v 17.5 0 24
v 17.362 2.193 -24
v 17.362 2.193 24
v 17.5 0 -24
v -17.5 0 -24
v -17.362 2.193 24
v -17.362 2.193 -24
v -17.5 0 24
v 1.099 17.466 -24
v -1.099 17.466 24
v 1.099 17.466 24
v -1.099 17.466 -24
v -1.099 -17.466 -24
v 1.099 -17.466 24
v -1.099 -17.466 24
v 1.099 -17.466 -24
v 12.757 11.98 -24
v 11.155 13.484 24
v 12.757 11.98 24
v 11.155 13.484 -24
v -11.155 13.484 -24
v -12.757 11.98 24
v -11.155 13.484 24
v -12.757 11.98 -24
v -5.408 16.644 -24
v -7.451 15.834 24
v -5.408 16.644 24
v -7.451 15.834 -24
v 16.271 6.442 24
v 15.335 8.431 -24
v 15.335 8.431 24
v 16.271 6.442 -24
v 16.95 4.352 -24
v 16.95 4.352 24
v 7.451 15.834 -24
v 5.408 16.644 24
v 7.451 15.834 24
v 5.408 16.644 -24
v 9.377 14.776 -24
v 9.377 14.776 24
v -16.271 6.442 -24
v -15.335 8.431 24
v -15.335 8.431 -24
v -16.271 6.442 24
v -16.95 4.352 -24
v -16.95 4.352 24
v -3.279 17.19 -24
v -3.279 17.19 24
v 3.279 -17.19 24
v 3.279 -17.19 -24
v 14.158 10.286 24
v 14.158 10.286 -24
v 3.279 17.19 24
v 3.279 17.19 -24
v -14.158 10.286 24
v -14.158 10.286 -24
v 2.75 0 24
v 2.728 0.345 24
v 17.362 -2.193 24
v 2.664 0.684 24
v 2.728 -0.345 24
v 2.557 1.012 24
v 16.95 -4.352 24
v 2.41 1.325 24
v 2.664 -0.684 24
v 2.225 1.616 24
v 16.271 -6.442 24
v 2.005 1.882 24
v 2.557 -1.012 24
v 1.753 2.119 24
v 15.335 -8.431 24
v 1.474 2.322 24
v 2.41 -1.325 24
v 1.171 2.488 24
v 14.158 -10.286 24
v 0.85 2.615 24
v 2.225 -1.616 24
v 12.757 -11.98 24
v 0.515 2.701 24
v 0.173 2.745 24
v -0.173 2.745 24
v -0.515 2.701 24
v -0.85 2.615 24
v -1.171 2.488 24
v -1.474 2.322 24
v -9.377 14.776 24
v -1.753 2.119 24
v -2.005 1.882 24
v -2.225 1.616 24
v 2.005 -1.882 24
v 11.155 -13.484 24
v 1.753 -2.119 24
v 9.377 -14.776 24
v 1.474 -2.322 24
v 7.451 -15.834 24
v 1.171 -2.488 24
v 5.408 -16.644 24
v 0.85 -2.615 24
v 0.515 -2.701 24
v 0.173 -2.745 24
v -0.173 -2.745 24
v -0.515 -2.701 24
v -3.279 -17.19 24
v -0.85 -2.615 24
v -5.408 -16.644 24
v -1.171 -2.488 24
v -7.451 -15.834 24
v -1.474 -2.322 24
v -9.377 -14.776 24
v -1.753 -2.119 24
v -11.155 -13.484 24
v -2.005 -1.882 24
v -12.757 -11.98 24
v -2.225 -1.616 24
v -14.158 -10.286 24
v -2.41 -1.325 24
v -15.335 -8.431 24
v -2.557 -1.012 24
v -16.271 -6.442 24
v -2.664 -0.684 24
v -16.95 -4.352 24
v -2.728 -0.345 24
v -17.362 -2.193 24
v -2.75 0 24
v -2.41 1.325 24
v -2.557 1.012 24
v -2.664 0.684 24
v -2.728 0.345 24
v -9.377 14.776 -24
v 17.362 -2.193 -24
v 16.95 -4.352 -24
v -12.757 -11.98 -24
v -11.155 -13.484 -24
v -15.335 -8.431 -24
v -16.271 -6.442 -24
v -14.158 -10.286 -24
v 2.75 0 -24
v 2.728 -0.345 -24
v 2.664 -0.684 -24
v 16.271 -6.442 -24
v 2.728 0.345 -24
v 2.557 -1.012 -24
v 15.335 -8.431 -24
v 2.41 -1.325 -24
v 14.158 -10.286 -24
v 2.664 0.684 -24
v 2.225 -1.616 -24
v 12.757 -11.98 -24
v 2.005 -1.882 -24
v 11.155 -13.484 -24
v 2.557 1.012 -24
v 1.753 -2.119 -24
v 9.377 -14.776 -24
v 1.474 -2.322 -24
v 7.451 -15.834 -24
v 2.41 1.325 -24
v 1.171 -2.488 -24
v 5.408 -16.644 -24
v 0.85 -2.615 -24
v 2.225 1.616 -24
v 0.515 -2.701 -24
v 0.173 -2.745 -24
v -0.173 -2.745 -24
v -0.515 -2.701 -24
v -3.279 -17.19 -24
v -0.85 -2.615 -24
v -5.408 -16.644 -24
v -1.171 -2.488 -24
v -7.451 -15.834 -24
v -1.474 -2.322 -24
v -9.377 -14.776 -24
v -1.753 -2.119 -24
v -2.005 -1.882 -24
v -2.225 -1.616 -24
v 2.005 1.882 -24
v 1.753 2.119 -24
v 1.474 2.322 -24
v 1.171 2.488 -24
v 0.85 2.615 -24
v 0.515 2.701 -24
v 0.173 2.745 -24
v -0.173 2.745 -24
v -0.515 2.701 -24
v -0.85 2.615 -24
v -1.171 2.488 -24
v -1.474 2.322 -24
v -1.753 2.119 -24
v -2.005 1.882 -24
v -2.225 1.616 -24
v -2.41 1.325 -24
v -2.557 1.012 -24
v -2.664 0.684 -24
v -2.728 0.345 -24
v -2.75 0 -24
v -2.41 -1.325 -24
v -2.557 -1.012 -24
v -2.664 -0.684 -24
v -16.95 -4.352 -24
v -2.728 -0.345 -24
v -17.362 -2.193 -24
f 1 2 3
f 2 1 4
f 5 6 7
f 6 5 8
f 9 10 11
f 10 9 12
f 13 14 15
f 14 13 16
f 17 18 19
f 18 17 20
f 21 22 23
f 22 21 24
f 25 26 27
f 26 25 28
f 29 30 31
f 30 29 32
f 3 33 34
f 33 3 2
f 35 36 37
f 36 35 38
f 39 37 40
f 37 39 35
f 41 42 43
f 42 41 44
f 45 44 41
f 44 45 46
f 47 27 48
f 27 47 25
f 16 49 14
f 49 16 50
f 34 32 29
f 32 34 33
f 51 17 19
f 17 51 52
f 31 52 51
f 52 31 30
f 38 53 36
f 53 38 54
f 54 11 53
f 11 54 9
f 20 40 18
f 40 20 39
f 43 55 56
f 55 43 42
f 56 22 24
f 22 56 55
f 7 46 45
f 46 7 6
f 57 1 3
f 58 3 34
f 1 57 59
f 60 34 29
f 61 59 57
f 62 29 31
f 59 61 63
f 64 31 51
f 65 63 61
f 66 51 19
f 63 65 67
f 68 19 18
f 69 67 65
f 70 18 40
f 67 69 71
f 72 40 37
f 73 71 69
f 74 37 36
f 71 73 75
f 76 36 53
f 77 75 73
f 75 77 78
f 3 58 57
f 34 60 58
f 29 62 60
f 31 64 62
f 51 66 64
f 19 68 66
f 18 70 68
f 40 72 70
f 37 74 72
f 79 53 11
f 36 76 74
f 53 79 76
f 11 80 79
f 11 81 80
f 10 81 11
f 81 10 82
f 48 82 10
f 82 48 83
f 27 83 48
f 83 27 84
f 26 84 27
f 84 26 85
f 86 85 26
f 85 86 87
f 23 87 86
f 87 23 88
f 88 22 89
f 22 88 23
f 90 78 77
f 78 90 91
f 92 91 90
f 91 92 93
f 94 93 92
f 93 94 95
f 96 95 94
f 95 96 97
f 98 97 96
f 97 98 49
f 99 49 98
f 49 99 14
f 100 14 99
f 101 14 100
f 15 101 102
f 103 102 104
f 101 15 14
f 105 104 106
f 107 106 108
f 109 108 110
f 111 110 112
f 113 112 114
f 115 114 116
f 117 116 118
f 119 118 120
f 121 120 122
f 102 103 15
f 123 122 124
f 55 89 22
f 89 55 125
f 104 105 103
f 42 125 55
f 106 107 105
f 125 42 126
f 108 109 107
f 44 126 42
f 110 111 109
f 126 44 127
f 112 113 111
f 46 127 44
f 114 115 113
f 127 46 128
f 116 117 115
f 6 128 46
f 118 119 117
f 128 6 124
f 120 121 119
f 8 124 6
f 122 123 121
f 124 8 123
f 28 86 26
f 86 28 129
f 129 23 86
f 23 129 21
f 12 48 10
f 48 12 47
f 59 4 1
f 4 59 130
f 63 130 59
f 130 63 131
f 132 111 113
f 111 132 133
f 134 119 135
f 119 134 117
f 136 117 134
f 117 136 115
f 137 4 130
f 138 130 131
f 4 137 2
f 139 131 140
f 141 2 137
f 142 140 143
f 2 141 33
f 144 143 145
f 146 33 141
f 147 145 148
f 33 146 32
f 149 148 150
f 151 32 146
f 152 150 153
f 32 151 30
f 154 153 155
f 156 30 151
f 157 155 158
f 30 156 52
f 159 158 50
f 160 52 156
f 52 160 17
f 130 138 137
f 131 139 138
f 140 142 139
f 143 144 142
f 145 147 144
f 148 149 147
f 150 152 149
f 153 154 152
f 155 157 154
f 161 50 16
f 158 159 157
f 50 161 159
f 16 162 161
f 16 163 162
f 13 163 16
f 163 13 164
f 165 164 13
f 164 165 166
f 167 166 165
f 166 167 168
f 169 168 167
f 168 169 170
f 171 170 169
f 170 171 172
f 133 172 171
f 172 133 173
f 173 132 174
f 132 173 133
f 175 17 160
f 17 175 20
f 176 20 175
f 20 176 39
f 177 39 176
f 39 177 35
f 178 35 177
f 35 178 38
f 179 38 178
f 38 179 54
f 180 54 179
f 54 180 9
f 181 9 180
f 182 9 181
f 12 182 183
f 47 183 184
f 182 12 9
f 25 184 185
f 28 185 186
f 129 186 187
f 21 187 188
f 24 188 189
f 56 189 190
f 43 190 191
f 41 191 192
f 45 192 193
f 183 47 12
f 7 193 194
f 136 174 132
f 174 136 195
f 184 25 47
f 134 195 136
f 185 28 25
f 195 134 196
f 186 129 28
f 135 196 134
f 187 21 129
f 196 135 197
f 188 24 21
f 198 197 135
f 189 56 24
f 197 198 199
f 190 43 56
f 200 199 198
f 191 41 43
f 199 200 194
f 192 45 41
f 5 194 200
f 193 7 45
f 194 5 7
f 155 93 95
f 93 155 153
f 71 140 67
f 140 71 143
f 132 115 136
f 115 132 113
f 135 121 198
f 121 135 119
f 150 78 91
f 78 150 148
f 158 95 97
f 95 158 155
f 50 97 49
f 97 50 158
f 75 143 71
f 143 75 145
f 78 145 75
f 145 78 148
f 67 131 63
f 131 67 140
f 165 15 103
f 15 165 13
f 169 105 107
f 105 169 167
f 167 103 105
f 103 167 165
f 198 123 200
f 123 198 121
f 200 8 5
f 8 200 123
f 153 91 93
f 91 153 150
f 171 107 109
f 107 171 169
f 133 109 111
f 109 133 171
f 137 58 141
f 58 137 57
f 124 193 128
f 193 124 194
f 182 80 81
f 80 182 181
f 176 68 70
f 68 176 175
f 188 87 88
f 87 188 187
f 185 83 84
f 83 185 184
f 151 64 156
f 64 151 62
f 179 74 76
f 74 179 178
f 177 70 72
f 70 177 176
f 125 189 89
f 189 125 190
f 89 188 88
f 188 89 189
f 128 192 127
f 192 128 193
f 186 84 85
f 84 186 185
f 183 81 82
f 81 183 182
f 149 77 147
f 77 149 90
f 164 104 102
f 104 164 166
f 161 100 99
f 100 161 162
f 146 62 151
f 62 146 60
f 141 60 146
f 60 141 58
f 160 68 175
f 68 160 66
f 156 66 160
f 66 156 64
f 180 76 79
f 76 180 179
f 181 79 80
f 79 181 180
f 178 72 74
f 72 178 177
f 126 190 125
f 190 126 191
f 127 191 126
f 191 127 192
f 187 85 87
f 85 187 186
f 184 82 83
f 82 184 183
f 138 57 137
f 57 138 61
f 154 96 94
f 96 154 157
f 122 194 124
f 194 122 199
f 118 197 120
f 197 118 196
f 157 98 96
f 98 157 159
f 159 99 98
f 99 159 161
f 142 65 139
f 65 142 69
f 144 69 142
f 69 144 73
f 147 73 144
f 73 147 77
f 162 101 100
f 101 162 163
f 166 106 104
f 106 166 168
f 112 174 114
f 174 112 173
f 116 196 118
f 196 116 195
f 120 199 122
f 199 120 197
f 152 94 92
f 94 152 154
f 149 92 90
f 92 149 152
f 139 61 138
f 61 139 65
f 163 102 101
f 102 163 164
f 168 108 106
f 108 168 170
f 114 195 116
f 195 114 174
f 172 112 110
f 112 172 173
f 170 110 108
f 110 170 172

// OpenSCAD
$fn = 50;


difference() {
	union() {
		translate(v = [0, 0, -24.0000000000]) {
			cylinder(h = 48, r = 17.5000000000);
		}
	}
	union() {
		translate(v = [0, 0, -100.0000000000]) {
			cylinder(h = 200, r = 2.7500000000);
		}
	}
}
